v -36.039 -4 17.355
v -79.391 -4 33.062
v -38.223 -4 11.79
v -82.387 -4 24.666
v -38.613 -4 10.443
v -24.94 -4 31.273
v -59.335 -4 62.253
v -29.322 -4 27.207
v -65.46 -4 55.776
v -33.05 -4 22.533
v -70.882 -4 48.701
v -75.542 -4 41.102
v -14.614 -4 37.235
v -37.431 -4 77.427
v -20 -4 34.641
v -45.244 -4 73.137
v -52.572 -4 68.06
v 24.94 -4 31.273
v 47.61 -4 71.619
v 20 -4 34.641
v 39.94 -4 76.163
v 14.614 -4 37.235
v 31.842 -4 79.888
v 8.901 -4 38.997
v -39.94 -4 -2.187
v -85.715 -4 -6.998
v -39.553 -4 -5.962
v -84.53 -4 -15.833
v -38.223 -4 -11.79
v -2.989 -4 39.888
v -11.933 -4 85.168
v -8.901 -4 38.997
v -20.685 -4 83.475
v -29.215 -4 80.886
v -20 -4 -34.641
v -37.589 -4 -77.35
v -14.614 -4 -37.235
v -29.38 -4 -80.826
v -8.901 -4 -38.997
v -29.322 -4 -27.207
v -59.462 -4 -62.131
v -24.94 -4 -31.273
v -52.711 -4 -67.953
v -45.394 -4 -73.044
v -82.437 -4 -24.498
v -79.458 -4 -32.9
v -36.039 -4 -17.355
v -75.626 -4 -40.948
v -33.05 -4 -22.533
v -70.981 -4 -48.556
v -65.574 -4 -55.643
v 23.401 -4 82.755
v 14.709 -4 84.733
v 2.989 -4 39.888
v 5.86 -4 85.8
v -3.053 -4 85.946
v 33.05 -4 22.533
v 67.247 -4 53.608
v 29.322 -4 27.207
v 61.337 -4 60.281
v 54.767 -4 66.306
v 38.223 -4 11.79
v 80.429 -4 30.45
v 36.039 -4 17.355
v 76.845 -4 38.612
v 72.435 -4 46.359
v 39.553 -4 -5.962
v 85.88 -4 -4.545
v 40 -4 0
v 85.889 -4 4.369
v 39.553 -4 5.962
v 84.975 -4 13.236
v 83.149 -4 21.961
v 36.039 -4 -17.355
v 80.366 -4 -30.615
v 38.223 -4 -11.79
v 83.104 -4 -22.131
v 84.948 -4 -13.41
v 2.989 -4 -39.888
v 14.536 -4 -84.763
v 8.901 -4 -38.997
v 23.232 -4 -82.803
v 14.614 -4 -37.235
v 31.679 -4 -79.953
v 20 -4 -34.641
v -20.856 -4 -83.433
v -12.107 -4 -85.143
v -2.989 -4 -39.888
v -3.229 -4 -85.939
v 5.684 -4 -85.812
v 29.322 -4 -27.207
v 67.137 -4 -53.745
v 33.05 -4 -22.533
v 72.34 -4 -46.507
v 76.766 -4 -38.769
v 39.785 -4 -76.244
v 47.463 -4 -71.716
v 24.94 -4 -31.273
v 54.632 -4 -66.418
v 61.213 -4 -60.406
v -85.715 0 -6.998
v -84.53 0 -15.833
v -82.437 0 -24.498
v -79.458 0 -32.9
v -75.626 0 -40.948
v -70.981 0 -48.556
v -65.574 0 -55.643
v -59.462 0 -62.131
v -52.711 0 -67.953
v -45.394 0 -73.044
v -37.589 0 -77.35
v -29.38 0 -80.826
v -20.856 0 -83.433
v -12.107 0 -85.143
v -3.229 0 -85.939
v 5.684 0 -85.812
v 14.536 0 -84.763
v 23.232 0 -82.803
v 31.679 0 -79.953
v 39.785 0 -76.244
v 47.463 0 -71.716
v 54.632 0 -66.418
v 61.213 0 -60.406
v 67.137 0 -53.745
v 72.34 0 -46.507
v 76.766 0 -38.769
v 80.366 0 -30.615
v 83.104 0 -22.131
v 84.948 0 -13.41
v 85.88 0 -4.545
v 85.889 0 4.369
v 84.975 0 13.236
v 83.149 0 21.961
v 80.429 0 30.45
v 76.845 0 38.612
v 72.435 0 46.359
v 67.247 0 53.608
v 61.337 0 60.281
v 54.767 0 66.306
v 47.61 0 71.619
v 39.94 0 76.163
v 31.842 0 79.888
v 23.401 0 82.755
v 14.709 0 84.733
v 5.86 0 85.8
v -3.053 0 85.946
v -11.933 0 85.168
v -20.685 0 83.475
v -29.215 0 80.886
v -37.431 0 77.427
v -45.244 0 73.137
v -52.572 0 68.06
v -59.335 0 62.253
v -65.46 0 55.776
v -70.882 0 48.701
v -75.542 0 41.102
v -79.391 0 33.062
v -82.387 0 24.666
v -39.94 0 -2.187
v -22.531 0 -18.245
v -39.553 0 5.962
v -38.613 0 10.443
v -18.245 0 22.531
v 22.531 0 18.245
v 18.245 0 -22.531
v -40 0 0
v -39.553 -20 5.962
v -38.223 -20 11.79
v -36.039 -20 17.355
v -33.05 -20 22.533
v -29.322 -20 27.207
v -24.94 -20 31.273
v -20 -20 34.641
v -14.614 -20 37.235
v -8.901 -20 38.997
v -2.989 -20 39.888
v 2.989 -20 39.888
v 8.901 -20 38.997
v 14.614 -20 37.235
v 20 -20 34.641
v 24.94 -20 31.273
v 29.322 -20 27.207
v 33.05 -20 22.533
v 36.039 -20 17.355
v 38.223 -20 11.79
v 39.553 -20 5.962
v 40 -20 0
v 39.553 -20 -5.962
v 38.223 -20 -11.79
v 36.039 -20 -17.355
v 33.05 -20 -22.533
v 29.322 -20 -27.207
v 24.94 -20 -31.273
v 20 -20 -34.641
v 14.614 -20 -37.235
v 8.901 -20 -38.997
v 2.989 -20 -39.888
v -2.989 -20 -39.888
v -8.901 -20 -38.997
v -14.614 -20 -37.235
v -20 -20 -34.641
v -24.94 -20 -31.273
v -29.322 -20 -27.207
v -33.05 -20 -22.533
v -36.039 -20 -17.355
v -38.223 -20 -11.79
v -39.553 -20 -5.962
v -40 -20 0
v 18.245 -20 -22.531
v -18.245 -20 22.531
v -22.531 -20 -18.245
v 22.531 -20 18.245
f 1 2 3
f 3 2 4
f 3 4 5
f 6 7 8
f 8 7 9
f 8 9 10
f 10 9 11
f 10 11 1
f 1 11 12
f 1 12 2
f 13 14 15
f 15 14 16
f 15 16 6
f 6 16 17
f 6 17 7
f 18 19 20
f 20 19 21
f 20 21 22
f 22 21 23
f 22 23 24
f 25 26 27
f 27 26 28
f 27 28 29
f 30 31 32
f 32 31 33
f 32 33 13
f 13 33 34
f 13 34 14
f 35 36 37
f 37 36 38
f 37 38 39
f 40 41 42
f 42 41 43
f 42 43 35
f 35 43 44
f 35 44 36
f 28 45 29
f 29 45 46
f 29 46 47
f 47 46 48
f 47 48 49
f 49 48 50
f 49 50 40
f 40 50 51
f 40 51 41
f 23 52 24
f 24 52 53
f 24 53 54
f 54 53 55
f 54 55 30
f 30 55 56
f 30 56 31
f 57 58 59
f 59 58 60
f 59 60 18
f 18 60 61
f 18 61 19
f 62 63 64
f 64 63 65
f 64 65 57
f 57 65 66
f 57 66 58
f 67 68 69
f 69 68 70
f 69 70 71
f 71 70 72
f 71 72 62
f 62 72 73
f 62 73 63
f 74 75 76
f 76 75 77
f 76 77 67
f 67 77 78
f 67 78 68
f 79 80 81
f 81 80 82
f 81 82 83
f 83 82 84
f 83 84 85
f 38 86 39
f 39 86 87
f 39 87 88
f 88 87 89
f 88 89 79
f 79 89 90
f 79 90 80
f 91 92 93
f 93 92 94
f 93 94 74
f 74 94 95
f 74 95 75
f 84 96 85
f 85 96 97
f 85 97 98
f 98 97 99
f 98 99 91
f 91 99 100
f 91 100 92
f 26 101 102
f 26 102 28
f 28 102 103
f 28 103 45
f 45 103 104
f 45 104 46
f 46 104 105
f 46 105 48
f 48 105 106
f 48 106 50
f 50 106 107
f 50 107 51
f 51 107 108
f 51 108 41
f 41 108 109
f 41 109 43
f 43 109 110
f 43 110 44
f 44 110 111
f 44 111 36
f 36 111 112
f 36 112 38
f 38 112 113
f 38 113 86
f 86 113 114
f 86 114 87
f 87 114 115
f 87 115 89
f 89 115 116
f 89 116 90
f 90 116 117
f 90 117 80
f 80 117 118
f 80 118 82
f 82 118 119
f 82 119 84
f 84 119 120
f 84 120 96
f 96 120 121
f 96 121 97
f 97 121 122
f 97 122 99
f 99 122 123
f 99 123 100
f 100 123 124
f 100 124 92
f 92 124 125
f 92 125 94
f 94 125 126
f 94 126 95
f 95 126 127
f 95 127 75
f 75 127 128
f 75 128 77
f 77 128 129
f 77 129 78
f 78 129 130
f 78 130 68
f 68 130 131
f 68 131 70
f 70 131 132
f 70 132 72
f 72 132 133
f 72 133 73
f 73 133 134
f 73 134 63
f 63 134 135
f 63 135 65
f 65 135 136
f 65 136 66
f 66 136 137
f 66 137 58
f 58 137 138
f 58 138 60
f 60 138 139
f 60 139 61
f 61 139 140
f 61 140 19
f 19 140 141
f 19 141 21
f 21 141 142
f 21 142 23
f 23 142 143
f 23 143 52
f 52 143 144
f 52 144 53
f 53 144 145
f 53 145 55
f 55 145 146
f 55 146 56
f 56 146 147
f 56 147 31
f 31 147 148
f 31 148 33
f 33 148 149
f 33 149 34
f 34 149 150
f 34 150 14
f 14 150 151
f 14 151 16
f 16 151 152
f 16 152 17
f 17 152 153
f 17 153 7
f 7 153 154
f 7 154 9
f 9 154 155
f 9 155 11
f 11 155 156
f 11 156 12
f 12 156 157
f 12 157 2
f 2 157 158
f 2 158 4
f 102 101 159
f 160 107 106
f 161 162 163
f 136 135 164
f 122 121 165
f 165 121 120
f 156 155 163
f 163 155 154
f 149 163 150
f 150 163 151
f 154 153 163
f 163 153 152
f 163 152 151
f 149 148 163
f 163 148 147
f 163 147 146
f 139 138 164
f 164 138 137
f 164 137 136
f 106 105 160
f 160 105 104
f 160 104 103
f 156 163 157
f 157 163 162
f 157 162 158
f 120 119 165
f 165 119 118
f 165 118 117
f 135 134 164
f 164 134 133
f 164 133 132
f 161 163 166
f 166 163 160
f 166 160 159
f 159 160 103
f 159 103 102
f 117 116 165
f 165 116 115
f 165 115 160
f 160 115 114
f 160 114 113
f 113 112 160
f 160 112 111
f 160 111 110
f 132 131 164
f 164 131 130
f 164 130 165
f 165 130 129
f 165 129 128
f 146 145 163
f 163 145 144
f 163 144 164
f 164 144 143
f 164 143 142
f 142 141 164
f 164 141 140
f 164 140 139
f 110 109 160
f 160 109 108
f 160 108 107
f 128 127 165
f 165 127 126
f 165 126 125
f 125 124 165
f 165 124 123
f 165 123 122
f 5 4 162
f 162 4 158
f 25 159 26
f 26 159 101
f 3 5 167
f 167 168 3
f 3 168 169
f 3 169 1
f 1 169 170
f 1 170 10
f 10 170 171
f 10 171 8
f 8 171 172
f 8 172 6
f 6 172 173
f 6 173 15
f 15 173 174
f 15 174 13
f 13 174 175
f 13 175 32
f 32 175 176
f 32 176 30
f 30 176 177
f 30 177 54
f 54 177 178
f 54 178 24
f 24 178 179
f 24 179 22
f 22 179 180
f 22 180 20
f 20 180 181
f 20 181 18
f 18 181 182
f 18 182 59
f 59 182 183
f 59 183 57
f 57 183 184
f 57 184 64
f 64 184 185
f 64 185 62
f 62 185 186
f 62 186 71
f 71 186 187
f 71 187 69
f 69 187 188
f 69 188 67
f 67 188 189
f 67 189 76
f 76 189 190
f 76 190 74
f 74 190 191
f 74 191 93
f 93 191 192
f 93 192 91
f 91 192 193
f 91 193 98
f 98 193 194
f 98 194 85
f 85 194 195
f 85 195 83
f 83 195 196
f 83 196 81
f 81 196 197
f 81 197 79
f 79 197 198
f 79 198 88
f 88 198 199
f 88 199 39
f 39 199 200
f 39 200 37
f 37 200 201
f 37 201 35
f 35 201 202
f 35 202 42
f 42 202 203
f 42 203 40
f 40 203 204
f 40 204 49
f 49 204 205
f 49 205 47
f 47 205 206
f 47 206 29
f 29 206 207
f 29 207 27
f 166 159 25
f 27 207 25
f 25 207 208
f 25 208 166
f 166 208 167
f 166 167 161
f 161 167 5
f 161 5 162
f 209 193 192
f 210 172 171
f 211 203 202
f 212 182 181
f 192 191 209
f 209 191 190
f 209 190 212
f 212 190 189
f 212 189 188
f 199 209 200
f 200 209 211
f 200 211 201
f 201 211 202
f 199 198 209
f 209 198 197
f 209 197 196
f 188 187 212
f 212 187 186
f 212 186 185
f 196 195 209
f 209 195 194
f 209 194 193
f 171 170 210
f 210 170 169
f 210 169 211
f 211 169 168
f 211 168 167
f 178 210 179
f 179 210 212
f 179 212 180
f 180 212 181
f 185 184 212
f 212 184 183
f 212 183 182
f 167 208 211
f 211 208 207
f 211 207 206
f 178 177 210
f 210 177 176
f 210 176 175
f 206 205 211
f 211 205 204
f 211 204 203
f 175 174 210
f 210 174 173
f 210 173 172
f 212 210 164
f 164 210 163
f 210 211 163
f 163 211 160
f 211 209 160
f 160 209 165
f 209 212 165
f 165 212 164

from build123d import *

# Parameters (mm, degrees)
SKETCH7_W               = 86
SKETCH7_H               = 4
CUT_EXTRUDE3_DEPTH      = 122.688125961
CUT_EXTRUDE3_DEPTH_BACK = 122.688125961
SKETCH9_R               = 40
CUT_EXTRUDE4_DEPTH      = 122.688125961
SKETCH10_R              = 40
BOSS_EXTRUDE1_DEPTH     = 20
CUT_EXTRUDE7_DEPTH      = 124.255831505


with BuildPart() as part:
    # Sketch7 → Revolve4 (revolve)
    with BuildSketch(Plane.XY):
        with Locations((-43, -2)):
            Rectangle(SKETCH7_W, SKETCH7_H)
    revolve(axis=Axis((0, 0, 0), (0, -1, 0)))

    # Sketch9 → Cut-Extrude3 (cut, two sides: drawn at the far end of the back side and taken through both)
    with BuildSketch(Plane(origin=(0, 0, 0), x_dir=(1, 0, 0), z_dir=(0, 1, 0)).offset(-CUT_EXTRUDE3_DEPTH_BACK)):
        Circle(SKETCH9_R)
    extrude(amount=CUT_EXTRUDE3_DEPTH + CUT_EXTRUDE3_DEPTH_BACK, mode=Mode.SUBTRACT)

    # Sketch1 → Cut-Extrude4 (cut, through all)
    with BuildSketch(Plane(origin=(0, 0, 0), x_dir=(1, 0, 0), z_dir=(0, 1, 0))):
        with BuildLine():
            Line((-86.191983256, -25.902548569), (-9.566772234, -1.00550828))
            Line((-9.566772234, -1.00550828), (-89.693924294, 7.416194762))
            ThreePointArc((-89.693924294, 7.416194762), (-89.506970583, -9.407561694), (-86.191983256, -25.902548569))
        make_face()
    extrude(amount=-CUT_EXTRUDE4_DEPTH, mode=Mode.SUBTRACT)

    # Sketch10 → Boss-Extrude1 (add)
    with BuildSketch(Plane(origin=(0, 0, 0), x_dir=(-1, 0, 0), z_dir=(0, -1, 0))):
        Circle(SKETCH10_R)
    extrude(amount=BOSS_EXTRUDE1_DEPTH)

    # Sketch14 → Cut-Extrude7 (cut, through all)
    with BuildSketch(Plane(origin=(0, 0, 0), x_dir=(1, 0, 0), z_dir=(0, 1, 0))):
        Polygon((22.530532352, -18.244865358), (18.244865358, 22.530532352), (-22.530532352, 18.244865358), (-18.244865358, -22.530532352), align=None)
    extrude(amount=-CUT_EXTRUDE7_DEPTH, mode=Mode.SUBTRACT)


solid = part.part
